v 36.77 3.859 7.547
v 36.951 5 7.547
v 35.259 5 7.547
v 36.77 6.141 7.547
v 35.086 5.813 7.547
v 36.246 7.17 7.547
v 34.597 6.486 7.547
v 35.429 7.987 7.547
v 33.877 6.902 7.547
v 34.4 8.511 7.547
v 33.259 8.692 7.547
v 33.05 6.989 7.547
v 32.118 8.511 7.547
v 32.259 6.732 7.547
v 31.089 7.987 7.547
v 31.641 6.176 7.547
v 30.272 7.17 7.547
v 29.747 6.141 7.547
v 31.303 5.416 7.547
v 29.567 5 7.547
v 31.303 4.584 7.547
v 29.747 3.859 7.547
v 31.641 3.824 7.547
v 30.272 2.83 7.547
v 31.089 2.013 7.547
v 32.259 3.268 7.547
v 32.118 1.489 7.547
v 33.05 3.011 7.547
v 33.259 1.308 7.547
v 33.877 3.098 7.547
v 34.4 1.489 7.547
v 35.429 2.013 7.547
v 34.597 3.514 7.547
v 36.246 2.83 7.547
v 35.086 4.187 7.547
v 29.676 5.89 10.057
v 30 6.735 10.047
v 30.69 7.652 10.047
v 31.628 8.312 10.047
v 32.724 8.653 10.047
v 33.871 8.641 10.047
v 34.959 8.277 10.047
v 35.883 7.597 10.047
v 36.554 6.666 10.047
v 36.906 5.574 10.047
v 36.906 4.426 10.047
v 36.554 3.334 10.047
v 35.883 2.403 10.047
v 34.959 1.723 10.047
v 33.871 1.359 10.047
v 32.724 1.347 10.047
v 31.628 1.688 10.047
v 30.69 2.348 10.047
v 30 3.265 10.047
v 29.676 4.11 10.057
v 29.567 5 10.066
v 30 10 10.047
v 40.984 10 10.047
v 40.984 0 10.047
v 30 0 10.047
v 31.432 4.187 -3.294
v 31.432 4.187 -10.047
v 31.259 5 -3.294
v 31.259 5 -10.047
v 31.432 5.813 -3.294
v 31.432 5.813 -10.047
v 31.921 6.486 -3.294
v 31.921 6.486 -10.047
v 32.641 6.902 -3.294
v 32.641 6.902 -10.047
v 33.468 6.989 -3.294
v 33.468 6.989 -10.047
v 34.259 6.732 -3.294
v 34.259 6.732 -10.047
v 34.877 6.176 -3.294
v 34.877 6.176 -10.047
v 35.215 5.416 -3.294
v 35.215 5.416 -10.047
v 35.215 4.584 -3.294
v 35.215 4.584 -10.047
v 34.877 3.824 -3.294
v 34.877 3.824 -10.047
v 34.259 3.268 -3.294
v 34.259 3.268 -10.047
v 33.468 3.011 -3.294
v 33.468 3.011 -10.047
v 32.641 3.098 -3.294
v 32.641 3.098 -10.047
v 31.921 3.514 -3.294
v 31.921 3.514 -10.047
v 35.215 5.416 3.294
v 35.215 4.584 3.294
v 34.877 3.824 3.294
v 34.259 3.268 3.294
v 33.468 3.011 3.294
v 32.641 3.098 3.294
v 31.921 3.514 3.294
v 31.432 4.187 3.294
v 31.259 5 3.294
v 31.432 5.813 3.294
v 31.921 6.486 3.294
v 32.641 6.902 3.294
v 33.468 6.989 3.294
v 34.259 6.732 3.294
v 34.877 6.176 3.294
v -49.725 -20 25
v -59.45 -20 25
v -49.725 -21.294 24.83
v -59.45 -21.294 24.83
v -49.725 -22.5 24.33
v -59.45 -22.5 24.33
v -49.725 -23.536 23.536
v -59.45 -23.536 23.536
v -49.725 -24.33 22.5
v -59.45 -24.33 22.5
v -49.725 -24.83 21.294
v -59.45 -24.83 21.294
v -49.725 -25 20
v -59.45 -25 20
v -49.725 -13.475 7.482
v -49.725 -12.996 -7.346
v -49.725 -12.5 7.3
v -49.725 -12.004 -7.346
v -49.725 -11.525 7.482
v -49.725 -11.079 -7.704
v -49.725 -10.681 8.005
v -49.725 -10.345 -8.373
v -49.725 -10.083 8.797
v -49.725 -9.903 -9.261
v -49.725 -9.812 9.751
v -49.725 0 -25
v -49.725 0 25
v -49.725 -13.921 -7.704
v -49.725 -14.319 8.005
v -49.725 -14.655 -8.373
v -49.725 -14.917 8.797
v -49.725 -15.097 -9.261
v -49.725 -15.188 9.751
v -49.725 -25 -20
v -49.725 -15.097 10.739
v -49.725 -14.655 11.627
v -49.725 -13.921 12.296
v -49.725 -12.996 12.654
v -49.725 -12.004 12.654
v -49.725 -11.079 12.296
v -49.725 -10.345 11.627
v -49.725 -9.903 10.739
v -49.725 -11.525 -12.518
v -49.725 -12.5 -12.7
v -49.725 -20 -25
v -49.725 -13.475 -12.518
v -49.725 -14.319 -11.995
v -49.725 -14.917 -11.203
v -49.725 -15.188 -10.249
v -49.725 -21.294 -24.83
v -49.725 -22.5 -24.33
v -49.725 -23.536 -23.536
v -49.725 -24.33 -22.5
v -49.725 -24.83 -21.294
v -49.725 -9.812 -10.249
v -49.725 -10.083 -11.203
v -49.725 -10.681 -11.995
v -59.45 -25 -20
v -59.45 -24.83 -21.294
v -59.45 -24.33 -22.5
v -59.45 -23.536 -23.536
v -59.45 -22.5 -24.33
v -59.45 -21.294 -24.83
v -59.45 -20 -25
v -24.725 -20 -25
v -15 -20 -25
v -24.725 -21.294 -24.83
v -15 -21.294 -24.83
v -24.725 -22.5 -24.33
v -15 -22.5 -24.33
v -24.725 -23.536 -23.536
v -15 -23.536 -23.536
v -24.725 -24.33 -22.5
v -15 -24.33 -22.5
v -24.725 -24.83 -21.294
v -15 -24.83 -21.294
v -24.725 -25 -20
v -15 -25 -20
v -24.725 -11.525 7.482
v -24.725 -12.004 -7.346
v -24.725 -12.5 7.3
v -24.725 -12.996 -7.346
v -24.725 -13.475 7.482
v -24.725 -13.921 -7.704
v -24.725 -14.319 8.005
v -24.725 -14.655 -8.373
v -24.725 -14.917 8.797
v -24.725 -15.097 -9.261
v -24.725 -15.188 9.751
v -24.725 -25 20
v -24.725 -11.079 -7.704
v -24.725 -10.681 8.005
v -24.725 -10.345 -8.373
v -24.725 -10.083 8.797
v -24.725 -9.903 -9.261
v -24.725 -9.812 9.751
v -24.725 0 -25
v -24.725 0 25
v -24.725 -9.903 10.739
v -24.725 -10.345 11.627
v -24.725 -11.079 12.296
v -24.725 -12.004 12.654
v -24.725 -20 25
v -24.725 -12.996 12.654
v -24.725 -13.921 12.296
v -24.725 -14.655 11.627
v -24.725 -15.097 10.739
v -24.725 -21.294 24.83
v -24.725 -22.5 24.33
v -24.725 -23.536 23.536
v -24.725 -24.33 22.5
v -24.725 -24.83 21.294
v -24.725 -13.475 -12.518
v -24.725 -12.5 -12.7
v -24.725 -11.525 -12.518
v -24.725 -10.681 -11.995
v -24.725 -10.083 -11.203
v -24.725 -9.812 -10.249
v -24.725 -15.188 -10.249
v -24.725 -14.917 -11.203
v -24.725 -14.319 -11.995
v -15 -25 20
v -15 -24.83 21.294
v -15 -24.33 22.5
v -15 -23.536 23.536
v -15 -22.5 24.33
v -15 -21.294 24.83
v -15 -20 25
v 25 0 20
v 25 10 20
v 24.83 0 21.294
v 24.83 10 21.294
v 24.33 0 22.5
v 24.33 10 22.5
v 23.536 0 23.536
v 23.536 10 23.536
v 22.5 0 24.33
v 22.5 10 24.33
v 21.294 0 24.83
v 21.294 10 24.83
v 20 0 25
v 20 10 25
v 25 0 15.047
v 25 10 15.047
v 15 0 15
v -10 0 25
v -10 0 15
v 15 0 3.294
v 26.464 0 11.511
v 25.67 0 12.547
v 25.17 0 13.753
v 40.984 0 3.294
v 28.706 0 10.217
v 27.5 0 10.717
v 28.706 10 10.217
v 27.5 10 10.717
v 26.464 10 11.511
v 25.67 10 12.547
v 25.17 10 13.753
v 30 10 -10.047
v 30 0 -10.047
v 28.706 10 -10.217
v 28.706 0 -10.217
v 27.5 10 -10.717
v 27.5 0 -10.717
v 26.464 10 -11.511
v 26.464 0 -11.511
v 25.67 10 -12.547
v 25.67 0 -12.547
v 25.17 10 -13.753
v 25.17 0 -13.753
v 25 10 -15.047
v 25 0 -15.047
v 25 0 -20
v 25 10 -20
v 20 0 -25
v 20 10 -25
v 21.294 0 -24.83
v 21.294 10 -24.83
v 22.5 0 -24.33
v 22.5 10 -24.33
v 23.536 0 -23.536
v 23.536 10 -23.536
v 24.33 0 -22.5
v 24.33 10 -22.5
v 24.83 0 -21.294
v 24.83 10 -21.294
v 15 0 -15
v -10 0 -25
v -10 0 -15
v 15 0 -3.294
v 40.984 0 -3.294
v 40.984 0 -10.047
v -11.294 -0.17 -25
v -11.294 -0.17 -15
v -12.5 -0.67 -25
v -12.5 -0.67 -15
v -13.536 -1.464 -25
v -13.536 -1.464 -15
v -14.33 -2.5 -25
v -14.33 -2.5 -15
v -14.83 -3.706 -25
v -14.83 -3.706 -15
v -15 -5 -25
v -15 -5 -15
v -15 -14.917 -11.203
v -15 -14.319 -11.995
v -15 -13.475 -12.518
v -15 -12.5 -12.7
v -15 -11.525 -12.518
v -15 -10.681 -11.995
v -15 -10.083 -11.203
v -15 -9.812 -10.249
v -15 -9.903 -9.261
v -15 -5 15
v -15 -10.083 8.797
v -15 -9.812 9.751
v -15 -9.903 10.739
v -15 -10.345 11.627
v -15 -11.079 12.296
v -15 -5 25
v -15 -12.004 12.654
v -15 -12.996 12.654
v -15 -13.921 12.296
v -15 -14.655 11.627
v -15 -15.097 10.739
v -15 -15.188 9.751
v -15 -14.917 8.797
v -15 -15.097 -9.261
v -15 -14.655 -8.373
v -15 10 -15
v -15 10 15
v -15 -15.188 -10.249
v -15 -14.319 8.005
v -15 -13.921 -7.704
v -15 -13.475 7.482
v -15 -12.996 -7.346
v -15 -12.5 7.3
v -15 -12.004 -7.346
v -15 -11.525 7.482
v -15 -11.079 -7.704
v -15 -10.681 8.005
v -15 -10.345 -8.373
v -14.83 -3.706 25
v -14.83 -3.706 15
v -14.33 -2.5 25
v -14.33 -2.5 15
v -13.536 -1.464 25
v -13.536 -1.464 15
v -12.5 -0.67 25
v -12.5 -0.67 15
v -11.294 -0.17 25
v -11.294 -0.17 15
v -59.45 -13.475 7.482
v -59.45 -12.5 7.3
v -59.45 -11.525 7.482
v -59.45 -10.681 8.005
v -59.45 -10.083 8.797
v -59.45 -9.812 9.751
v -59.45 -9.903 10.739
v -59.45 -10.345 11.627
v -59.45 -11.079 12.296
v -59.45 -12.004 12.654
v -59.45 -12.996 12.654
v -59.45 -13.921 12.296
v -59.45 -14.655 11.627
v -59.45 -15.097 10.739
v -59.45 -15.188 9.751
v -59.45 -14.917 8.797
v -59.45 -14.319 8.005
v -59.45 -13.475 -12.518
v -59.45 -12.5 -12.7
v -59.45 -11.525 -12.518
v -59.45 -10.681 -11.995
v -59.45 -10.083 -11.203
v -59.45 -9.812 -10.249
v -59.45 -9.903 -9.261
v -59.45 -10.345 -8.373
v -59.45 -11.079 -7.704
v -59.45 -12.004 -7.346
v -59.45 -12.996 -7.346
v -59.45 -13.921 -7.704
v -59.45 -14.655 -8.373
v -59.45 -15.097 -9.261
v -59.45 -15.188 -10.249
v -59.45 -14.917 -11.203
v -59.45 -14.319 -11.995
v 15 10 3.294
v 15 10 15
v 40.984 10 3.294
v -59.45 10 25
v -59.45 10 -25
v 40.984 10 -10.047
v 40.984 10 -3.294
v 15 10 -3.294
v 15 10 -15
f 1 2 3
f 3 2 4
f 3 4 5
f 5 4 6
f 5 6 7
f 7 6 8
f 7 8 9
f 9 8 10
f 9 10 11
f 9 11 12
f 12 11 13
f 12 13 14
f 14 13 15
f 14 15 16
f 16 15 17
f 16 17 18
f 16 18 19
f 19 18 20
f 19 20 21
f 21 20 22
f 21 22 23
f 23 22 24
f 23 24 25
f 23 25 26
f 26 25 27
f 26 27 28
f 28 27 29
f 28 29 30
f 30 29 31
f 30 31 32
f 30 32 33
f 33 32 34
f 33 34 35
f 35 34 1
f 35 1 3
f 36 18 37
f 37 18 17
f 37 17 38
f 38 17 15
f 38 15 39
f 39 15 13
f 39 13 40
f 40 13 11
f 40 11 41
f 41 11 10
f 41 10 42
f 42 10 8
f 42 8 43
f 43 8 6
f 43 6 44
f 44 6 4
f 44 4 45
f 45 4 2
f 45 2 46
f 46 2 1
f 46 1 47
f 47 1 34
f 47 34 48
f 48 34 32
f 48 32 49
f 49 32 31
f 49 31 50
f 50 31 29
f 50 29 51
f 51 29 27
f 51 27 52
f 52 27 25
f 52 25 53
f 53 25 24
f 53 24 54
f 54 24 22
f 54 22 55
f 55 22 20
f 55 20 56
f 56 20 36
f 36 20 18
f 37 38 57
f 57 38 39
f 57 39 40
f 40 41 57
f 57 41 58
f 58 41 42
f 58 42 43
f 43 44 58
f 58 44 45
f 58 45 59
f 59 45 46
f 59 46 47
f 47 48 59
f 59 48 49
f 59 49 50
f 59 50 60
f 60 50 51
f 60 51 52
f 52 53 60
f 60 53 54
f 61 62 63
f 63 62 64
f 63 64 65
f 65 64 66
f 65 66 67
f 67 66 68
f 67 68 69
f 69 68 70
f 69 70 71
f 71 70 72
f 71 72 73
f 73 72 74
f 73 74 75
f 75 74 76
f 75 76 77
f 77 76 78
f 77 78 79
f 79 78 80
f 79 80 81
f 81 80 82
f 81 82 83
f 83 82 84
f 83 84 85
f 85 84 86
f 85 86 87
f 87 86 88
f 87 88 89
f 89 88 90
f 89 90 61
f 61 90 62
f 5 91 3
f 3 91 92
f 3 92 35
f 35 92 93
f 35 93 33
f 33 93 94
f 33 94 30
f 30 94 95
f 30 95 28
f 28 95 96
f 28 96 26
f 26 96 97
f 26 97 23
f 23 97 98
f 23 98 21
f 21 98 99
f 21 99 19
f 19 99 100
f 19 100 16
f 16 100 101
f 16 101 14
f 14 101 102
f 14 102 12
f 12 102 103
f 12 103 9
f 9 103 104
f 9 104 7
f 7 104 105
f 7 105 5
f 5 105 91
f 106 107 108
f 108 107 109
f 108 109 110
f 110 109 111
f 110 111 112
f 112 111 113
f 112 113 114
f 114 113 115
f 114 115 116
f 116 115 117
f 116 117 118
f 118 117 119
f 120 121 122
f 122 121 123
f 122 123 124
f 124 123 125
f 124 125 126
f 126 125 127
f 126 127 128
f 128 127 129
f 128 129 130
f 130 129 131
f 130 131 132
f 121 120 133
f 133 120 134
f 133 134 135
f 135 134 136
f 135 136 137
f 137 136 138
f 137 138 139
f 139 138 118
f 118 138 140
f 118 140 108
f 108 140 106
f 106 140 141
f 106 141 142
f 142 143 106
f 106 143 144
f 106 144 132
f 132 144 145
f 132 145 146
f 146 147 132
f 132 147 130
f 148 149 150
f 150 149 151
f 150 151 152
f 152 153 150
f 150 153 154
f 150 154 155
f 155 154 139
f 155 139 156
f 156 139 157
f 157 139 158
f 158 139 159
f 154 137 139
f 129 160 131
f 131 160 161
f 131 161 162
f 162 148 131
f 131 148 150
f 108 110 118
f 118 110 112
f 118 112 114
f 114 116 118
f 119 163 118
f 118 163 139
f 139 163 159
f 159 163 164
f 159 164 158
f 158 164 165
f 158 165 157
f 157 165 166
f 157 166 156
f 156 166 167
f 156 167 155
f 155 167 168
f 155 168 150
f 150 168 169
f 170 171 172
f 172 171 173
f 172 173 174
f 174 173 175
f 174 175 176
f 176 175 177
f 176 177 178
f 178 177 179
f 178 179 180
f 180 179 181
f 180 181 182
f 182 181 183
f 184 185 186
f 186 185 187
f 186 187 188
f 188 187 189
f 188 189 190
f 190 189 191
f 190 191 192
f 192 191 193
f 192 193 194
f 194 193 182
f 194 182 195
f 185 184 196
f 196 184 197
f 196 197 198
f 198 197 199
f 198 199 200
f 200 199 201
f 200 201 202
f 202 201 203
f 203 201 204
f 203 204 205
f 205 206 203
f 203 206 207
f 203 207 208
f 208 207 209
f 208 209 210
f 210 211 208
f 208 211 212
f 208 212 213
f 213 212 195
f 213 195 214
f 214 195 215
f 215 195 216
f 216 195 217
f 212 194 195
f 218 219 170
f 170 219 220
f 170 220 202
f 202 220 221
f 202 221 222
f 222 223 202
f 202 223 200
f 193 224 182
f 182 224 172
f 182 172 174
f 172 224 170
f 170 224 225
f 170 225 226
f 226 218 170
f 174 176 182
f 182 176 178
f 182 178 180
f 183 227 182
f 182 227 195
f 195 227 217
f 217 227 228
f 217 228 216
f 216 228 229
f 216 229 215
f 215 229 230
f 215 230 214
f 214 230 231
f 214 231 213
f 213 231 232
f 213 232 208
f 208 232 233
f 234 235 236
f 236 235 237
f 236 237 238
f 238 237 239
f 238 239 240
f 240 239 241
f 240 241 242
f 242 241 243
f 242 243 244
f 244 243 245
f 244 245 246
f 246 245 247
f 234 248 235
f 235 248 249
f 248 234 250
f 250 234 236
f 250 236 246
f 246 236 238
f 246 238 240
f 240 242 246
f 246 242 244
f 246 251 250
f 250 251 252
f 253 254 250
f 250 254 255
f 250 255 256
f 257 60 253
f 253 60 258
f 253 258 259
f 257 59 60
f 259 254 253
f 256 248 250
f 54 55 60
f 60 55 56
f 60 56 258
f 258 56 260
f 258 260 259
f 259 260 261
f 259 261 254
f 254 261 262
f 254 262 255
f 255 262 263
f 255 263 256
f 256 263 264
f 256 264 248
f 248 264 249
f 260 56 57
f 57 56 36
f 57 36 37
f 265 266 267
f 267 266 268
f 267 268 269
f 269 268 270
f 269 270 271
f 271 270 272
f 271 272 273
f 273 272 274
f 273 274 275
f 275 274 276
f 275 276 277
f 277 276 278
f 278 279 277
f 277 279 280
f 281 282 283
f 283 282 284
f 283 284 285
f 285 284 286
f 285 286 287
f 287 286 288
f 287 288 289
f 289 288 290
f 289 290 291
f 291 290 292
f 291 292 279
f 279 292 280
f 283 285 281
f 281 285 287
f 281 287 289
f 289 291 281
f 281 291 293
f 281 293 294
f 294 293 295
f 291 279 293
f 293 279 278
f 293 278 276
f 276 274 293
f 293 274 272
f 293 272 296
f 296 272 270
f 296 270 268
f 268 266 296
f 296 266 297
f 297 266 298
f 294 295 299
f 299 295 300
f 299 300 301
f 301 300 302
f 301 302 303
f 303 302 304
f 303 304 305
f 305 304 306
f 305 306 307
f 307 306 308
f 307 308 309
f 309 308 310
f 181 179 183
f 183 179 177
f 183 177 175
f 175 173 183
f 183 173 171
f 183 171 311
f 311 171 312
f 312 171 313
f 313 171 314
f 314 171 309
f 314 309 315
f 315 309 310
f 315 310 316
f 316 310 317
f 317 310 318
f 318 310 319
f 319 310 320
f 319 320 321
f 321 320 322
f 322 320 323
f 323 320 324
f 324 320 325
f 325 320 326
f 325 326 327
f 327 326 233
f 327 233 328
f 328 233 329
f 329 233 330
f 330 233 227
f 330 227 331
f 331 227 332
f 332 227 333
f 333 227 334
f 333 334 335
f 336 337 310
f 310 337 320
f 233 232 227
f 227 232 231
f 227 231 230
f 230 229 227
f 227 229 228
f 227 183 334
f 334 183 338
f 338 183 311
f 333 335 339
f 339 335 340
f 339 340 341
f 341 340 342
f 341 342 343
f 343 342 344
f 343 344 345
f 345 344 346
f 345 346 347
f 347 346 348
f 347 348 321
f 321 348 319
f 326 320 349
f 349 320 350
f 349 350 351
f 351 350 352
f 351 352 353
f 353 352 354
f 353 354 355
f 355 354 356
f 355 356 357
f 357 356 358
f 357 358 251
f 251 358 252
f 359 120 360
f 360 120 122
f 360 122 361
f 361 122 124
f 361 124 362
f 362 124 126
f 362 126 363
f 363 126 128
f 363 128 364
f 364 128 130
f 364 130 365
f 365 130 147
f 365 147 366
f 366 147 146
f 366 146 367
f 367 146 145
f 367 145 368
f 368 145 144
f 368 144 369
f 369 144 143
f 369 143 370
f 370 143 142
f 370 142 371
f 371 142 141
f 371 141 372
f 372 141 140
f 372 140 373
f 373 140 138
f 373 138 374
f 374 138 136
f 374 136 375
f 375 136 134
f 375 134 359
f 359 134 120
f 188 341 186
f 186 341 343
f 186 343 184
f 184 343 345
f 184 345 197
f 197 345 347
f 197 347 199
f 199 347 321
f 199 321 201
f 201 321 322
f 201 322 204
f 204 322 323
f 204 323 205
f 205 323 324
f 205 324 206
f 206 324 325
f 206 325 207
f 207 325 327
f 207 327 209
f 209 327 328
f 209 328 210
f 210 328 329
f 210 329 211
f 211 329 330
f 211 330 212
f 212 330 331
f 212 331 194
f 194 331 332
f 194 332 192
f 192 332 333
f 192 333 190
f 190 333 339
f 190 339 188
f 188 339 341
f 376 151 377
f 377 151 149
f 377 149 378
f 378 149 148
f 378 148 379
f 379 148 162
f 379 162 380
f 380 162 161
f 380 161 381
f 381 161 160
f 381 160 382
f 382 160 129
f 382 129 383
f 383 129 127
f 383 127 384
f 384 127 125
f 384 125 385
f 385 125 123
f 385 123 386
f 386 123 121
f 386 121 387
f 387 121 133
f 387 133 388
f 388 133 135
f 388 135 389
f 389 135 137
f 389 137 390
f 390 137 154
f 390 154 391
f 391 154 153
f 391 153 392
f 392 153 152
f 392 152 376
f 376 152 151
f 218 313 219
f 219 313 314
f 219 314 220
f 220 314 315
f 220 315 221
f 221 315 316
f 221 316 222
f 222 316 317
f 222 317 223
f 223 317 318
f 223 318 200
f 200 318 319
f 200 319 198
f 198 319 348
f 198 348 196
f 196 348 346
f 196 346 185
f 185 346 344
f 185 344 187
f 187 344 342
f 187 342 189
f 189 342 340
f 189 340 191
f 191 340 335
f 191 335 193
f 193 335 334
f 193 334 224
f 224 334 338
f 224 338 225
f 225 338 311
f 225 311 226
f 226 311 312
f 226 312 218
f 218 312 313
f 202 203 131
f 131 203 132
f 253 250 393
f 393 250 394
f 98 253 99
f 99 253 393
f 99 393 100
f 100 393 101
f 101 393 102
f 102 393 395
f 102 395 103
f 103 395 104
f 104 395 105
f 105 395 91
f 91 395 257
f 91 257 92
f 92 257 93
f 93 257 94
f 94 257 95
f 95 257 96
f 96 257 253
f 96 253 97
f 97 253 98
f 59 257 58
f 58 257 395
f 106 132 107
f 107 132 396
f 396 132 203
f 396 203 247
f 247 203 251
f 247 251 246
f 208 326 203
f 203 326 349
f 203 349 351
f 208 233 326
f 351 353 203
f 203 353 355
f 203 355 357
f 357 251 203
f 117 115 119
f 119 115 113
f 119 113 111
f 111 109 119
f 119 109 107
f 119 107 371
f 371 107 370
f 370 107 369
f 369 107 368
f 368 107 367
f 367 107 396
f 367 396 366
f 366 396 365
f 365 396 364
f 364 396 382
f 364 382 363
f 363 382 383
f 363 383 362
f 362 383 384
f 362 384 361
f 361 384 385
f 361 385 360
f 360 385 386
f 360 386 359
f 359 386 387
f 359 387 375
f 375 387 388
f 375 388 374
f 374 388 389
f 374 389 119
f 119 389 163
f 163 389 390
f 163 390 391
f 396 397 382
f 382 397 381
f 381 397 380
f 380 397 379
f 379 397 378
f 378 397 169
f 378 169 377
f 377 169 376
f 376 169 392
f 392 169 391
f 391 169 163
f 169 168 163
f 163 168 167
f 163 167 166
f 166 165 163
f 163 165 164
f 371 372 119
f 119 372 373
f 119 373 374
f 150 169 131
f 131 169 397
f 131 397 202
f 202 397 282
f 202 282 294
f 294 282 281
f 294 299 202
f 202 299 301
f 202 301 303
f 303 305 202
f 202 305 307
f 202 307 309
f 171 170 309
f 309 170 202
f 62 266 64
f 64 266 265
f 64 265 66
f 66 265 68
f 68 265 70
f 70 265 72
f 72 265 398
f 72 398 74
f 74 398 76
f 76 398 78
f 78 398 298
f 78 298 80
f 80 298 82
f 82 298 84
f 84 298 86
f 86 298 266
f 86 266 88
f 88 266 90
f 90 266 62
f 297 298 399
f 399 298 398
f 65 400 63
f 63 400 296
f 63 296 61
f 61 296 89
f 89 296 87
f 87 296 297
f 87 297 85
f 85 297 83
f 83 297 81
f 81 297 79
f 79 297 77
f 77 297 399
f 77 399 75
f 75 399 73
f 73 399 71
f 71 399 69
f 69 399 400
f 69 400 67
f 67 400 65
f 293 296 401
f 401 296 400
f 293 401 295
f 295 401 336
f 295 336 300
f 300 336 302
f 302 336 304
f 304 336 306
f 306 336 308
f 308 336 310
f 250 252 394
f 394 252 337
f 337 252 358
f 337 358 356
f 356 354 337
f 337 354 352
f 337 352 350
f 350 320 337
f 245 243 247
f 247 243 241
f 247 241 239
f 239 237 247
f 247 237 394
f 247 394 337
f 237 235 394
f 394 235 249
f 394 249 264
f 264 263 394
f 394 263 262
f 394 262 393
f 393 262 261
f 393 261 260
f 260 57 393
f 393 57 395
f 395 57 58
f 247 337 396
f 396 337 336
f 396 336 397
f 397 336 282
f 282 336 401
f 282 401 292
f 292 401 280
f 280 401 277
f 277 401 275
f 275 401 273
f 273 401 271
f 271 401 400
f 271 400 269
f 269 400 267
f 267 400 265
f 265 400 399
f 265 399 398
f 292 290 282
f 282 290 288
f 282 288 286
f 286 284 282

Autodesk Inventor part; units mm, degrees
ref_plane "YZ Plane" through (0, 0, 0) normal (1, 0, 0) x (0, 1, 0)
ref_plane "XZ Plane" through (0, 0, 0) normal (0, 1, 0) x (-1, 0, 0)
ref_plane "XY Plane" through (0, 0, 0) normal (0, 0, 1) x (1, 0, 0)
sketch "Sketch1" plane through (0, 0, 0) normal (0, 1, 0) x (-1, 0, 0)
  line L0 (-15, 15) -> (15, 15)
  line L1 (15, 15) -> (15, -15)
  line L2 (15, -15) -> (-15, -15)
  line L3 (-15, 15) -> (15, -15) construction
  line L4 (15, 15) -> (-15, -15) construction
  line L5 (25, 25) -> (-25, 25)
  line L6 (-25, -25) -> (25, -25)
  line L7 (25, 25) -> (59.45, 25)
  line L8 (59.45, 25) -> (59.45, -25)
  line L9 (59.45, -25) -> (25, -25)
  line L10 (-40.9844, -10.0467) -> (-25, -10.0467)
  line L11 (-25, 10.0467) -> (-40.9844, 10.0467)
  line L12 (-40.9844, -10.0467) -> (-20.5822, 10.0467) construction
  line L13 (-27.4388, -3.2939) -> (-40.9844, 10.0467) construction
  line L14 (-40.9844, -3.2939) -> (-15, -3.2939)
  line L15 (-15, 3.2939) -> (-40.9844, 3.2939)
  line L16 (-46.5666, -3.2939) -> (-15, 3.2939) construction
  line L17 (-15, -3.2939) -> (-46.5666, 3.2939) construction
  line L18 (-40.9844, 10.0467) -> (-40.9844, 3.2939)
  line L19 (-40.9844, -3.2939) -> (-40.9844, -10.0467)
  line L20 (-25, 25) -> (-25, 10.0467)
  line L21 (-15, -15) -> (-15, -3.2939)
  line L22 (-15, 3.2939) -> (-15, 15)
  line L23 (-25, -10.0467) -> (-25, -25)
  point P0 (0, 0)
  point P1 (-30.7833, 0)
  dimension "d0" = 30
  dimension "d1" = 30
  dimension "d2" = 10
  dimension "d4" = 44.45
extrude "Extrusion1" add sketch "Sketch1" along normal blind 10
sketch "Sketch2" plane through (0, 0, 0) normal (0, -1, 0) x (1, 0, 0)
  line L0 (15, 15) -> (-15, 15) projected
  line L1 (15, 3.2939) -> (15, 15) projected
  line L2 (40.9844, 3.2939) -> (15, 3.2939) projected
  line L3 (40.9844, 10.0467) -> (40.9844, 3.2939) projected
  line L4 (25, 10.0467) -> (40.9844, 10.0467) projected
  line L5 (25, 25) -> (25, 10.0467) projected
  line L6 (-59.45, 25) -> (25, 25) projected
  line L7 (-59.45, -25) -> (-59.45, 25) projected
  line L8 (25, -25) -> (-59.45, -25) projected
  line L9 (25, -10.0467) -> (25, -25) projected
  line L10 (40.9844, -10.0467) -> (25, -10.0467) projected
  line L11 (40.9844, -3.2939) -> (40.9844, -10.0467) projected
  line L12 (15, -3.2939) -> (40.9844, -3.2939) projected
  line L13 (15, -15) -> (15, -3.2939) projected
  line L14 (-15, -15) -> (15, -15) projected
  line L15 (-15, 15) -> (-15, -15) projected
  line L16 (-49.725, -25) -> (-24.725, -25)
  line L17 (-24.725, -25) -> (-24.725, 25)
  line L18 (-24.725, 25) -> (-49.725, 25)
  line L19 (-49.725, 25) -> (-49.725, -25)
  line L20 (-49.725, -25) -> (-24.725, 25) construction
  line L21 (-24.725, -25) -> (-49.725, 25) construction
  line L22 (-59.45, 25) -> (25, 25) projected
  line L23 (-15, 25) -> (-15, -25)
  line L24 (25, -25) -> (-59.45, -25) projected
  line L25 (-59.45, 25) -> (-49.725, 25)
  line L26 (-59.45, 25) -> (25, 25) projected
  line L27 (-24.725, 25) -> (-15, 25)
  line L28 (-59.45, 21.5922) -> (-49.725, 21.5922)
  line L29 (-24.725, 21.5922) -> (-15, 21.5922)
  line L30 (-15, 15) -> (-15, -15) projected
  point P0 (0, 0)
  point P1 (-37.225, 0)
  point P2 (-15, -25)
  dimension "d7" = 25
extrude "Extrusion2" add sketch "Sketch2" along normal blind 25 contours L15 L23 L8 L17 L29 | L29 L17 L6 L23 | L8 L7 L28 L19 | L19 L28 L7 L6
sketch "Sketch3" plane through (-24.725, 0, -25) normal (-1, 0, 0) x (0, 0, 1)
  line L0 (0, 0) -> (50, 0) construction
  line L1 (0, 0) -> (0, -25) construction
  line L2 (50, -25) -> (0, -25) construction
  line L3 (50, 0) -> (50, -25) construction
  line L4 (0, -12.5) -> (50, -12.5) construction
  line L5 (50, 0) -> (50, -25) construction
  line L6 (15, -12.5) -> (35, -12.5) construction
  line L7 (15, -15.2) -> (35, -15.2) construction
  line L8 (35, -9.8) -> (15, -9.8) construction
  arc A0 (15, -9.8) -> (15, -15.2) centre (15, -12.5) ccw construction
  arc A1 (35, -15.2) -> (35, -9.8) centre (35, -12.5) ccw
  circle A2 centre (35, -12.5) radius 2.7
  circle A3 centre (15, -12.5) radius 2.7
  point P0 (25, 0)
  point P1 (25, -12.5)
  point P2 (35, -9.8)
  dimension "d10" = 20
  dimension "d11" = 2.7
extrude "Extrusion3" cut sketch "Sketch3" along normal through all both and the other way through all
fillet "Fillet1" radius 5 10 edges at (-15, 0, 20) (-15, 0, -20) (25, 5, -25) (25, 5, -10.0467) (25, 5, 10.0467) (25, 5, 25) (-19.8625, -25, 25) (-19.8625, -25, -25) (-54.5875, -25, -25) (-54.5875, -25, 25)
sketch "Sketch4" plane through (40.9844, 0, 10.0467) normal (0, 0, 1) x (1, 0, 0)
  line L0 (-10.9844, 0) -> (-10.9844, 10) projected
  line L1 (-10.9844, 0) -> (0, 0) projected
  line L2 (0, 0) -> (0, 10) projected
  line L3 (-10.9844, 10) -> (0, 10) projected
  circle A0 centre (-7.7256, 5) radius 2
  point P0 (-40.9844, 0)
  dimension "d15" = 4
extrude "Extrusion4" cut sketch "Sketch4" against normal through all contours A0
sketch "Sketch5" plane through (40.9844, 0, 10.0467) normal (0, 0, 1) x (1, 0, 0)
  circle A0 centre (-7.7256, 5) radius 2 projected
  circle A1 centre (-7.7256, 5) radius 3.6921
  point P0 (-40.9844, 0)
extrude "Extrusion5" cut sketch "Sketch5" along normal mid plane 5
properties part number "estopMountV1"
